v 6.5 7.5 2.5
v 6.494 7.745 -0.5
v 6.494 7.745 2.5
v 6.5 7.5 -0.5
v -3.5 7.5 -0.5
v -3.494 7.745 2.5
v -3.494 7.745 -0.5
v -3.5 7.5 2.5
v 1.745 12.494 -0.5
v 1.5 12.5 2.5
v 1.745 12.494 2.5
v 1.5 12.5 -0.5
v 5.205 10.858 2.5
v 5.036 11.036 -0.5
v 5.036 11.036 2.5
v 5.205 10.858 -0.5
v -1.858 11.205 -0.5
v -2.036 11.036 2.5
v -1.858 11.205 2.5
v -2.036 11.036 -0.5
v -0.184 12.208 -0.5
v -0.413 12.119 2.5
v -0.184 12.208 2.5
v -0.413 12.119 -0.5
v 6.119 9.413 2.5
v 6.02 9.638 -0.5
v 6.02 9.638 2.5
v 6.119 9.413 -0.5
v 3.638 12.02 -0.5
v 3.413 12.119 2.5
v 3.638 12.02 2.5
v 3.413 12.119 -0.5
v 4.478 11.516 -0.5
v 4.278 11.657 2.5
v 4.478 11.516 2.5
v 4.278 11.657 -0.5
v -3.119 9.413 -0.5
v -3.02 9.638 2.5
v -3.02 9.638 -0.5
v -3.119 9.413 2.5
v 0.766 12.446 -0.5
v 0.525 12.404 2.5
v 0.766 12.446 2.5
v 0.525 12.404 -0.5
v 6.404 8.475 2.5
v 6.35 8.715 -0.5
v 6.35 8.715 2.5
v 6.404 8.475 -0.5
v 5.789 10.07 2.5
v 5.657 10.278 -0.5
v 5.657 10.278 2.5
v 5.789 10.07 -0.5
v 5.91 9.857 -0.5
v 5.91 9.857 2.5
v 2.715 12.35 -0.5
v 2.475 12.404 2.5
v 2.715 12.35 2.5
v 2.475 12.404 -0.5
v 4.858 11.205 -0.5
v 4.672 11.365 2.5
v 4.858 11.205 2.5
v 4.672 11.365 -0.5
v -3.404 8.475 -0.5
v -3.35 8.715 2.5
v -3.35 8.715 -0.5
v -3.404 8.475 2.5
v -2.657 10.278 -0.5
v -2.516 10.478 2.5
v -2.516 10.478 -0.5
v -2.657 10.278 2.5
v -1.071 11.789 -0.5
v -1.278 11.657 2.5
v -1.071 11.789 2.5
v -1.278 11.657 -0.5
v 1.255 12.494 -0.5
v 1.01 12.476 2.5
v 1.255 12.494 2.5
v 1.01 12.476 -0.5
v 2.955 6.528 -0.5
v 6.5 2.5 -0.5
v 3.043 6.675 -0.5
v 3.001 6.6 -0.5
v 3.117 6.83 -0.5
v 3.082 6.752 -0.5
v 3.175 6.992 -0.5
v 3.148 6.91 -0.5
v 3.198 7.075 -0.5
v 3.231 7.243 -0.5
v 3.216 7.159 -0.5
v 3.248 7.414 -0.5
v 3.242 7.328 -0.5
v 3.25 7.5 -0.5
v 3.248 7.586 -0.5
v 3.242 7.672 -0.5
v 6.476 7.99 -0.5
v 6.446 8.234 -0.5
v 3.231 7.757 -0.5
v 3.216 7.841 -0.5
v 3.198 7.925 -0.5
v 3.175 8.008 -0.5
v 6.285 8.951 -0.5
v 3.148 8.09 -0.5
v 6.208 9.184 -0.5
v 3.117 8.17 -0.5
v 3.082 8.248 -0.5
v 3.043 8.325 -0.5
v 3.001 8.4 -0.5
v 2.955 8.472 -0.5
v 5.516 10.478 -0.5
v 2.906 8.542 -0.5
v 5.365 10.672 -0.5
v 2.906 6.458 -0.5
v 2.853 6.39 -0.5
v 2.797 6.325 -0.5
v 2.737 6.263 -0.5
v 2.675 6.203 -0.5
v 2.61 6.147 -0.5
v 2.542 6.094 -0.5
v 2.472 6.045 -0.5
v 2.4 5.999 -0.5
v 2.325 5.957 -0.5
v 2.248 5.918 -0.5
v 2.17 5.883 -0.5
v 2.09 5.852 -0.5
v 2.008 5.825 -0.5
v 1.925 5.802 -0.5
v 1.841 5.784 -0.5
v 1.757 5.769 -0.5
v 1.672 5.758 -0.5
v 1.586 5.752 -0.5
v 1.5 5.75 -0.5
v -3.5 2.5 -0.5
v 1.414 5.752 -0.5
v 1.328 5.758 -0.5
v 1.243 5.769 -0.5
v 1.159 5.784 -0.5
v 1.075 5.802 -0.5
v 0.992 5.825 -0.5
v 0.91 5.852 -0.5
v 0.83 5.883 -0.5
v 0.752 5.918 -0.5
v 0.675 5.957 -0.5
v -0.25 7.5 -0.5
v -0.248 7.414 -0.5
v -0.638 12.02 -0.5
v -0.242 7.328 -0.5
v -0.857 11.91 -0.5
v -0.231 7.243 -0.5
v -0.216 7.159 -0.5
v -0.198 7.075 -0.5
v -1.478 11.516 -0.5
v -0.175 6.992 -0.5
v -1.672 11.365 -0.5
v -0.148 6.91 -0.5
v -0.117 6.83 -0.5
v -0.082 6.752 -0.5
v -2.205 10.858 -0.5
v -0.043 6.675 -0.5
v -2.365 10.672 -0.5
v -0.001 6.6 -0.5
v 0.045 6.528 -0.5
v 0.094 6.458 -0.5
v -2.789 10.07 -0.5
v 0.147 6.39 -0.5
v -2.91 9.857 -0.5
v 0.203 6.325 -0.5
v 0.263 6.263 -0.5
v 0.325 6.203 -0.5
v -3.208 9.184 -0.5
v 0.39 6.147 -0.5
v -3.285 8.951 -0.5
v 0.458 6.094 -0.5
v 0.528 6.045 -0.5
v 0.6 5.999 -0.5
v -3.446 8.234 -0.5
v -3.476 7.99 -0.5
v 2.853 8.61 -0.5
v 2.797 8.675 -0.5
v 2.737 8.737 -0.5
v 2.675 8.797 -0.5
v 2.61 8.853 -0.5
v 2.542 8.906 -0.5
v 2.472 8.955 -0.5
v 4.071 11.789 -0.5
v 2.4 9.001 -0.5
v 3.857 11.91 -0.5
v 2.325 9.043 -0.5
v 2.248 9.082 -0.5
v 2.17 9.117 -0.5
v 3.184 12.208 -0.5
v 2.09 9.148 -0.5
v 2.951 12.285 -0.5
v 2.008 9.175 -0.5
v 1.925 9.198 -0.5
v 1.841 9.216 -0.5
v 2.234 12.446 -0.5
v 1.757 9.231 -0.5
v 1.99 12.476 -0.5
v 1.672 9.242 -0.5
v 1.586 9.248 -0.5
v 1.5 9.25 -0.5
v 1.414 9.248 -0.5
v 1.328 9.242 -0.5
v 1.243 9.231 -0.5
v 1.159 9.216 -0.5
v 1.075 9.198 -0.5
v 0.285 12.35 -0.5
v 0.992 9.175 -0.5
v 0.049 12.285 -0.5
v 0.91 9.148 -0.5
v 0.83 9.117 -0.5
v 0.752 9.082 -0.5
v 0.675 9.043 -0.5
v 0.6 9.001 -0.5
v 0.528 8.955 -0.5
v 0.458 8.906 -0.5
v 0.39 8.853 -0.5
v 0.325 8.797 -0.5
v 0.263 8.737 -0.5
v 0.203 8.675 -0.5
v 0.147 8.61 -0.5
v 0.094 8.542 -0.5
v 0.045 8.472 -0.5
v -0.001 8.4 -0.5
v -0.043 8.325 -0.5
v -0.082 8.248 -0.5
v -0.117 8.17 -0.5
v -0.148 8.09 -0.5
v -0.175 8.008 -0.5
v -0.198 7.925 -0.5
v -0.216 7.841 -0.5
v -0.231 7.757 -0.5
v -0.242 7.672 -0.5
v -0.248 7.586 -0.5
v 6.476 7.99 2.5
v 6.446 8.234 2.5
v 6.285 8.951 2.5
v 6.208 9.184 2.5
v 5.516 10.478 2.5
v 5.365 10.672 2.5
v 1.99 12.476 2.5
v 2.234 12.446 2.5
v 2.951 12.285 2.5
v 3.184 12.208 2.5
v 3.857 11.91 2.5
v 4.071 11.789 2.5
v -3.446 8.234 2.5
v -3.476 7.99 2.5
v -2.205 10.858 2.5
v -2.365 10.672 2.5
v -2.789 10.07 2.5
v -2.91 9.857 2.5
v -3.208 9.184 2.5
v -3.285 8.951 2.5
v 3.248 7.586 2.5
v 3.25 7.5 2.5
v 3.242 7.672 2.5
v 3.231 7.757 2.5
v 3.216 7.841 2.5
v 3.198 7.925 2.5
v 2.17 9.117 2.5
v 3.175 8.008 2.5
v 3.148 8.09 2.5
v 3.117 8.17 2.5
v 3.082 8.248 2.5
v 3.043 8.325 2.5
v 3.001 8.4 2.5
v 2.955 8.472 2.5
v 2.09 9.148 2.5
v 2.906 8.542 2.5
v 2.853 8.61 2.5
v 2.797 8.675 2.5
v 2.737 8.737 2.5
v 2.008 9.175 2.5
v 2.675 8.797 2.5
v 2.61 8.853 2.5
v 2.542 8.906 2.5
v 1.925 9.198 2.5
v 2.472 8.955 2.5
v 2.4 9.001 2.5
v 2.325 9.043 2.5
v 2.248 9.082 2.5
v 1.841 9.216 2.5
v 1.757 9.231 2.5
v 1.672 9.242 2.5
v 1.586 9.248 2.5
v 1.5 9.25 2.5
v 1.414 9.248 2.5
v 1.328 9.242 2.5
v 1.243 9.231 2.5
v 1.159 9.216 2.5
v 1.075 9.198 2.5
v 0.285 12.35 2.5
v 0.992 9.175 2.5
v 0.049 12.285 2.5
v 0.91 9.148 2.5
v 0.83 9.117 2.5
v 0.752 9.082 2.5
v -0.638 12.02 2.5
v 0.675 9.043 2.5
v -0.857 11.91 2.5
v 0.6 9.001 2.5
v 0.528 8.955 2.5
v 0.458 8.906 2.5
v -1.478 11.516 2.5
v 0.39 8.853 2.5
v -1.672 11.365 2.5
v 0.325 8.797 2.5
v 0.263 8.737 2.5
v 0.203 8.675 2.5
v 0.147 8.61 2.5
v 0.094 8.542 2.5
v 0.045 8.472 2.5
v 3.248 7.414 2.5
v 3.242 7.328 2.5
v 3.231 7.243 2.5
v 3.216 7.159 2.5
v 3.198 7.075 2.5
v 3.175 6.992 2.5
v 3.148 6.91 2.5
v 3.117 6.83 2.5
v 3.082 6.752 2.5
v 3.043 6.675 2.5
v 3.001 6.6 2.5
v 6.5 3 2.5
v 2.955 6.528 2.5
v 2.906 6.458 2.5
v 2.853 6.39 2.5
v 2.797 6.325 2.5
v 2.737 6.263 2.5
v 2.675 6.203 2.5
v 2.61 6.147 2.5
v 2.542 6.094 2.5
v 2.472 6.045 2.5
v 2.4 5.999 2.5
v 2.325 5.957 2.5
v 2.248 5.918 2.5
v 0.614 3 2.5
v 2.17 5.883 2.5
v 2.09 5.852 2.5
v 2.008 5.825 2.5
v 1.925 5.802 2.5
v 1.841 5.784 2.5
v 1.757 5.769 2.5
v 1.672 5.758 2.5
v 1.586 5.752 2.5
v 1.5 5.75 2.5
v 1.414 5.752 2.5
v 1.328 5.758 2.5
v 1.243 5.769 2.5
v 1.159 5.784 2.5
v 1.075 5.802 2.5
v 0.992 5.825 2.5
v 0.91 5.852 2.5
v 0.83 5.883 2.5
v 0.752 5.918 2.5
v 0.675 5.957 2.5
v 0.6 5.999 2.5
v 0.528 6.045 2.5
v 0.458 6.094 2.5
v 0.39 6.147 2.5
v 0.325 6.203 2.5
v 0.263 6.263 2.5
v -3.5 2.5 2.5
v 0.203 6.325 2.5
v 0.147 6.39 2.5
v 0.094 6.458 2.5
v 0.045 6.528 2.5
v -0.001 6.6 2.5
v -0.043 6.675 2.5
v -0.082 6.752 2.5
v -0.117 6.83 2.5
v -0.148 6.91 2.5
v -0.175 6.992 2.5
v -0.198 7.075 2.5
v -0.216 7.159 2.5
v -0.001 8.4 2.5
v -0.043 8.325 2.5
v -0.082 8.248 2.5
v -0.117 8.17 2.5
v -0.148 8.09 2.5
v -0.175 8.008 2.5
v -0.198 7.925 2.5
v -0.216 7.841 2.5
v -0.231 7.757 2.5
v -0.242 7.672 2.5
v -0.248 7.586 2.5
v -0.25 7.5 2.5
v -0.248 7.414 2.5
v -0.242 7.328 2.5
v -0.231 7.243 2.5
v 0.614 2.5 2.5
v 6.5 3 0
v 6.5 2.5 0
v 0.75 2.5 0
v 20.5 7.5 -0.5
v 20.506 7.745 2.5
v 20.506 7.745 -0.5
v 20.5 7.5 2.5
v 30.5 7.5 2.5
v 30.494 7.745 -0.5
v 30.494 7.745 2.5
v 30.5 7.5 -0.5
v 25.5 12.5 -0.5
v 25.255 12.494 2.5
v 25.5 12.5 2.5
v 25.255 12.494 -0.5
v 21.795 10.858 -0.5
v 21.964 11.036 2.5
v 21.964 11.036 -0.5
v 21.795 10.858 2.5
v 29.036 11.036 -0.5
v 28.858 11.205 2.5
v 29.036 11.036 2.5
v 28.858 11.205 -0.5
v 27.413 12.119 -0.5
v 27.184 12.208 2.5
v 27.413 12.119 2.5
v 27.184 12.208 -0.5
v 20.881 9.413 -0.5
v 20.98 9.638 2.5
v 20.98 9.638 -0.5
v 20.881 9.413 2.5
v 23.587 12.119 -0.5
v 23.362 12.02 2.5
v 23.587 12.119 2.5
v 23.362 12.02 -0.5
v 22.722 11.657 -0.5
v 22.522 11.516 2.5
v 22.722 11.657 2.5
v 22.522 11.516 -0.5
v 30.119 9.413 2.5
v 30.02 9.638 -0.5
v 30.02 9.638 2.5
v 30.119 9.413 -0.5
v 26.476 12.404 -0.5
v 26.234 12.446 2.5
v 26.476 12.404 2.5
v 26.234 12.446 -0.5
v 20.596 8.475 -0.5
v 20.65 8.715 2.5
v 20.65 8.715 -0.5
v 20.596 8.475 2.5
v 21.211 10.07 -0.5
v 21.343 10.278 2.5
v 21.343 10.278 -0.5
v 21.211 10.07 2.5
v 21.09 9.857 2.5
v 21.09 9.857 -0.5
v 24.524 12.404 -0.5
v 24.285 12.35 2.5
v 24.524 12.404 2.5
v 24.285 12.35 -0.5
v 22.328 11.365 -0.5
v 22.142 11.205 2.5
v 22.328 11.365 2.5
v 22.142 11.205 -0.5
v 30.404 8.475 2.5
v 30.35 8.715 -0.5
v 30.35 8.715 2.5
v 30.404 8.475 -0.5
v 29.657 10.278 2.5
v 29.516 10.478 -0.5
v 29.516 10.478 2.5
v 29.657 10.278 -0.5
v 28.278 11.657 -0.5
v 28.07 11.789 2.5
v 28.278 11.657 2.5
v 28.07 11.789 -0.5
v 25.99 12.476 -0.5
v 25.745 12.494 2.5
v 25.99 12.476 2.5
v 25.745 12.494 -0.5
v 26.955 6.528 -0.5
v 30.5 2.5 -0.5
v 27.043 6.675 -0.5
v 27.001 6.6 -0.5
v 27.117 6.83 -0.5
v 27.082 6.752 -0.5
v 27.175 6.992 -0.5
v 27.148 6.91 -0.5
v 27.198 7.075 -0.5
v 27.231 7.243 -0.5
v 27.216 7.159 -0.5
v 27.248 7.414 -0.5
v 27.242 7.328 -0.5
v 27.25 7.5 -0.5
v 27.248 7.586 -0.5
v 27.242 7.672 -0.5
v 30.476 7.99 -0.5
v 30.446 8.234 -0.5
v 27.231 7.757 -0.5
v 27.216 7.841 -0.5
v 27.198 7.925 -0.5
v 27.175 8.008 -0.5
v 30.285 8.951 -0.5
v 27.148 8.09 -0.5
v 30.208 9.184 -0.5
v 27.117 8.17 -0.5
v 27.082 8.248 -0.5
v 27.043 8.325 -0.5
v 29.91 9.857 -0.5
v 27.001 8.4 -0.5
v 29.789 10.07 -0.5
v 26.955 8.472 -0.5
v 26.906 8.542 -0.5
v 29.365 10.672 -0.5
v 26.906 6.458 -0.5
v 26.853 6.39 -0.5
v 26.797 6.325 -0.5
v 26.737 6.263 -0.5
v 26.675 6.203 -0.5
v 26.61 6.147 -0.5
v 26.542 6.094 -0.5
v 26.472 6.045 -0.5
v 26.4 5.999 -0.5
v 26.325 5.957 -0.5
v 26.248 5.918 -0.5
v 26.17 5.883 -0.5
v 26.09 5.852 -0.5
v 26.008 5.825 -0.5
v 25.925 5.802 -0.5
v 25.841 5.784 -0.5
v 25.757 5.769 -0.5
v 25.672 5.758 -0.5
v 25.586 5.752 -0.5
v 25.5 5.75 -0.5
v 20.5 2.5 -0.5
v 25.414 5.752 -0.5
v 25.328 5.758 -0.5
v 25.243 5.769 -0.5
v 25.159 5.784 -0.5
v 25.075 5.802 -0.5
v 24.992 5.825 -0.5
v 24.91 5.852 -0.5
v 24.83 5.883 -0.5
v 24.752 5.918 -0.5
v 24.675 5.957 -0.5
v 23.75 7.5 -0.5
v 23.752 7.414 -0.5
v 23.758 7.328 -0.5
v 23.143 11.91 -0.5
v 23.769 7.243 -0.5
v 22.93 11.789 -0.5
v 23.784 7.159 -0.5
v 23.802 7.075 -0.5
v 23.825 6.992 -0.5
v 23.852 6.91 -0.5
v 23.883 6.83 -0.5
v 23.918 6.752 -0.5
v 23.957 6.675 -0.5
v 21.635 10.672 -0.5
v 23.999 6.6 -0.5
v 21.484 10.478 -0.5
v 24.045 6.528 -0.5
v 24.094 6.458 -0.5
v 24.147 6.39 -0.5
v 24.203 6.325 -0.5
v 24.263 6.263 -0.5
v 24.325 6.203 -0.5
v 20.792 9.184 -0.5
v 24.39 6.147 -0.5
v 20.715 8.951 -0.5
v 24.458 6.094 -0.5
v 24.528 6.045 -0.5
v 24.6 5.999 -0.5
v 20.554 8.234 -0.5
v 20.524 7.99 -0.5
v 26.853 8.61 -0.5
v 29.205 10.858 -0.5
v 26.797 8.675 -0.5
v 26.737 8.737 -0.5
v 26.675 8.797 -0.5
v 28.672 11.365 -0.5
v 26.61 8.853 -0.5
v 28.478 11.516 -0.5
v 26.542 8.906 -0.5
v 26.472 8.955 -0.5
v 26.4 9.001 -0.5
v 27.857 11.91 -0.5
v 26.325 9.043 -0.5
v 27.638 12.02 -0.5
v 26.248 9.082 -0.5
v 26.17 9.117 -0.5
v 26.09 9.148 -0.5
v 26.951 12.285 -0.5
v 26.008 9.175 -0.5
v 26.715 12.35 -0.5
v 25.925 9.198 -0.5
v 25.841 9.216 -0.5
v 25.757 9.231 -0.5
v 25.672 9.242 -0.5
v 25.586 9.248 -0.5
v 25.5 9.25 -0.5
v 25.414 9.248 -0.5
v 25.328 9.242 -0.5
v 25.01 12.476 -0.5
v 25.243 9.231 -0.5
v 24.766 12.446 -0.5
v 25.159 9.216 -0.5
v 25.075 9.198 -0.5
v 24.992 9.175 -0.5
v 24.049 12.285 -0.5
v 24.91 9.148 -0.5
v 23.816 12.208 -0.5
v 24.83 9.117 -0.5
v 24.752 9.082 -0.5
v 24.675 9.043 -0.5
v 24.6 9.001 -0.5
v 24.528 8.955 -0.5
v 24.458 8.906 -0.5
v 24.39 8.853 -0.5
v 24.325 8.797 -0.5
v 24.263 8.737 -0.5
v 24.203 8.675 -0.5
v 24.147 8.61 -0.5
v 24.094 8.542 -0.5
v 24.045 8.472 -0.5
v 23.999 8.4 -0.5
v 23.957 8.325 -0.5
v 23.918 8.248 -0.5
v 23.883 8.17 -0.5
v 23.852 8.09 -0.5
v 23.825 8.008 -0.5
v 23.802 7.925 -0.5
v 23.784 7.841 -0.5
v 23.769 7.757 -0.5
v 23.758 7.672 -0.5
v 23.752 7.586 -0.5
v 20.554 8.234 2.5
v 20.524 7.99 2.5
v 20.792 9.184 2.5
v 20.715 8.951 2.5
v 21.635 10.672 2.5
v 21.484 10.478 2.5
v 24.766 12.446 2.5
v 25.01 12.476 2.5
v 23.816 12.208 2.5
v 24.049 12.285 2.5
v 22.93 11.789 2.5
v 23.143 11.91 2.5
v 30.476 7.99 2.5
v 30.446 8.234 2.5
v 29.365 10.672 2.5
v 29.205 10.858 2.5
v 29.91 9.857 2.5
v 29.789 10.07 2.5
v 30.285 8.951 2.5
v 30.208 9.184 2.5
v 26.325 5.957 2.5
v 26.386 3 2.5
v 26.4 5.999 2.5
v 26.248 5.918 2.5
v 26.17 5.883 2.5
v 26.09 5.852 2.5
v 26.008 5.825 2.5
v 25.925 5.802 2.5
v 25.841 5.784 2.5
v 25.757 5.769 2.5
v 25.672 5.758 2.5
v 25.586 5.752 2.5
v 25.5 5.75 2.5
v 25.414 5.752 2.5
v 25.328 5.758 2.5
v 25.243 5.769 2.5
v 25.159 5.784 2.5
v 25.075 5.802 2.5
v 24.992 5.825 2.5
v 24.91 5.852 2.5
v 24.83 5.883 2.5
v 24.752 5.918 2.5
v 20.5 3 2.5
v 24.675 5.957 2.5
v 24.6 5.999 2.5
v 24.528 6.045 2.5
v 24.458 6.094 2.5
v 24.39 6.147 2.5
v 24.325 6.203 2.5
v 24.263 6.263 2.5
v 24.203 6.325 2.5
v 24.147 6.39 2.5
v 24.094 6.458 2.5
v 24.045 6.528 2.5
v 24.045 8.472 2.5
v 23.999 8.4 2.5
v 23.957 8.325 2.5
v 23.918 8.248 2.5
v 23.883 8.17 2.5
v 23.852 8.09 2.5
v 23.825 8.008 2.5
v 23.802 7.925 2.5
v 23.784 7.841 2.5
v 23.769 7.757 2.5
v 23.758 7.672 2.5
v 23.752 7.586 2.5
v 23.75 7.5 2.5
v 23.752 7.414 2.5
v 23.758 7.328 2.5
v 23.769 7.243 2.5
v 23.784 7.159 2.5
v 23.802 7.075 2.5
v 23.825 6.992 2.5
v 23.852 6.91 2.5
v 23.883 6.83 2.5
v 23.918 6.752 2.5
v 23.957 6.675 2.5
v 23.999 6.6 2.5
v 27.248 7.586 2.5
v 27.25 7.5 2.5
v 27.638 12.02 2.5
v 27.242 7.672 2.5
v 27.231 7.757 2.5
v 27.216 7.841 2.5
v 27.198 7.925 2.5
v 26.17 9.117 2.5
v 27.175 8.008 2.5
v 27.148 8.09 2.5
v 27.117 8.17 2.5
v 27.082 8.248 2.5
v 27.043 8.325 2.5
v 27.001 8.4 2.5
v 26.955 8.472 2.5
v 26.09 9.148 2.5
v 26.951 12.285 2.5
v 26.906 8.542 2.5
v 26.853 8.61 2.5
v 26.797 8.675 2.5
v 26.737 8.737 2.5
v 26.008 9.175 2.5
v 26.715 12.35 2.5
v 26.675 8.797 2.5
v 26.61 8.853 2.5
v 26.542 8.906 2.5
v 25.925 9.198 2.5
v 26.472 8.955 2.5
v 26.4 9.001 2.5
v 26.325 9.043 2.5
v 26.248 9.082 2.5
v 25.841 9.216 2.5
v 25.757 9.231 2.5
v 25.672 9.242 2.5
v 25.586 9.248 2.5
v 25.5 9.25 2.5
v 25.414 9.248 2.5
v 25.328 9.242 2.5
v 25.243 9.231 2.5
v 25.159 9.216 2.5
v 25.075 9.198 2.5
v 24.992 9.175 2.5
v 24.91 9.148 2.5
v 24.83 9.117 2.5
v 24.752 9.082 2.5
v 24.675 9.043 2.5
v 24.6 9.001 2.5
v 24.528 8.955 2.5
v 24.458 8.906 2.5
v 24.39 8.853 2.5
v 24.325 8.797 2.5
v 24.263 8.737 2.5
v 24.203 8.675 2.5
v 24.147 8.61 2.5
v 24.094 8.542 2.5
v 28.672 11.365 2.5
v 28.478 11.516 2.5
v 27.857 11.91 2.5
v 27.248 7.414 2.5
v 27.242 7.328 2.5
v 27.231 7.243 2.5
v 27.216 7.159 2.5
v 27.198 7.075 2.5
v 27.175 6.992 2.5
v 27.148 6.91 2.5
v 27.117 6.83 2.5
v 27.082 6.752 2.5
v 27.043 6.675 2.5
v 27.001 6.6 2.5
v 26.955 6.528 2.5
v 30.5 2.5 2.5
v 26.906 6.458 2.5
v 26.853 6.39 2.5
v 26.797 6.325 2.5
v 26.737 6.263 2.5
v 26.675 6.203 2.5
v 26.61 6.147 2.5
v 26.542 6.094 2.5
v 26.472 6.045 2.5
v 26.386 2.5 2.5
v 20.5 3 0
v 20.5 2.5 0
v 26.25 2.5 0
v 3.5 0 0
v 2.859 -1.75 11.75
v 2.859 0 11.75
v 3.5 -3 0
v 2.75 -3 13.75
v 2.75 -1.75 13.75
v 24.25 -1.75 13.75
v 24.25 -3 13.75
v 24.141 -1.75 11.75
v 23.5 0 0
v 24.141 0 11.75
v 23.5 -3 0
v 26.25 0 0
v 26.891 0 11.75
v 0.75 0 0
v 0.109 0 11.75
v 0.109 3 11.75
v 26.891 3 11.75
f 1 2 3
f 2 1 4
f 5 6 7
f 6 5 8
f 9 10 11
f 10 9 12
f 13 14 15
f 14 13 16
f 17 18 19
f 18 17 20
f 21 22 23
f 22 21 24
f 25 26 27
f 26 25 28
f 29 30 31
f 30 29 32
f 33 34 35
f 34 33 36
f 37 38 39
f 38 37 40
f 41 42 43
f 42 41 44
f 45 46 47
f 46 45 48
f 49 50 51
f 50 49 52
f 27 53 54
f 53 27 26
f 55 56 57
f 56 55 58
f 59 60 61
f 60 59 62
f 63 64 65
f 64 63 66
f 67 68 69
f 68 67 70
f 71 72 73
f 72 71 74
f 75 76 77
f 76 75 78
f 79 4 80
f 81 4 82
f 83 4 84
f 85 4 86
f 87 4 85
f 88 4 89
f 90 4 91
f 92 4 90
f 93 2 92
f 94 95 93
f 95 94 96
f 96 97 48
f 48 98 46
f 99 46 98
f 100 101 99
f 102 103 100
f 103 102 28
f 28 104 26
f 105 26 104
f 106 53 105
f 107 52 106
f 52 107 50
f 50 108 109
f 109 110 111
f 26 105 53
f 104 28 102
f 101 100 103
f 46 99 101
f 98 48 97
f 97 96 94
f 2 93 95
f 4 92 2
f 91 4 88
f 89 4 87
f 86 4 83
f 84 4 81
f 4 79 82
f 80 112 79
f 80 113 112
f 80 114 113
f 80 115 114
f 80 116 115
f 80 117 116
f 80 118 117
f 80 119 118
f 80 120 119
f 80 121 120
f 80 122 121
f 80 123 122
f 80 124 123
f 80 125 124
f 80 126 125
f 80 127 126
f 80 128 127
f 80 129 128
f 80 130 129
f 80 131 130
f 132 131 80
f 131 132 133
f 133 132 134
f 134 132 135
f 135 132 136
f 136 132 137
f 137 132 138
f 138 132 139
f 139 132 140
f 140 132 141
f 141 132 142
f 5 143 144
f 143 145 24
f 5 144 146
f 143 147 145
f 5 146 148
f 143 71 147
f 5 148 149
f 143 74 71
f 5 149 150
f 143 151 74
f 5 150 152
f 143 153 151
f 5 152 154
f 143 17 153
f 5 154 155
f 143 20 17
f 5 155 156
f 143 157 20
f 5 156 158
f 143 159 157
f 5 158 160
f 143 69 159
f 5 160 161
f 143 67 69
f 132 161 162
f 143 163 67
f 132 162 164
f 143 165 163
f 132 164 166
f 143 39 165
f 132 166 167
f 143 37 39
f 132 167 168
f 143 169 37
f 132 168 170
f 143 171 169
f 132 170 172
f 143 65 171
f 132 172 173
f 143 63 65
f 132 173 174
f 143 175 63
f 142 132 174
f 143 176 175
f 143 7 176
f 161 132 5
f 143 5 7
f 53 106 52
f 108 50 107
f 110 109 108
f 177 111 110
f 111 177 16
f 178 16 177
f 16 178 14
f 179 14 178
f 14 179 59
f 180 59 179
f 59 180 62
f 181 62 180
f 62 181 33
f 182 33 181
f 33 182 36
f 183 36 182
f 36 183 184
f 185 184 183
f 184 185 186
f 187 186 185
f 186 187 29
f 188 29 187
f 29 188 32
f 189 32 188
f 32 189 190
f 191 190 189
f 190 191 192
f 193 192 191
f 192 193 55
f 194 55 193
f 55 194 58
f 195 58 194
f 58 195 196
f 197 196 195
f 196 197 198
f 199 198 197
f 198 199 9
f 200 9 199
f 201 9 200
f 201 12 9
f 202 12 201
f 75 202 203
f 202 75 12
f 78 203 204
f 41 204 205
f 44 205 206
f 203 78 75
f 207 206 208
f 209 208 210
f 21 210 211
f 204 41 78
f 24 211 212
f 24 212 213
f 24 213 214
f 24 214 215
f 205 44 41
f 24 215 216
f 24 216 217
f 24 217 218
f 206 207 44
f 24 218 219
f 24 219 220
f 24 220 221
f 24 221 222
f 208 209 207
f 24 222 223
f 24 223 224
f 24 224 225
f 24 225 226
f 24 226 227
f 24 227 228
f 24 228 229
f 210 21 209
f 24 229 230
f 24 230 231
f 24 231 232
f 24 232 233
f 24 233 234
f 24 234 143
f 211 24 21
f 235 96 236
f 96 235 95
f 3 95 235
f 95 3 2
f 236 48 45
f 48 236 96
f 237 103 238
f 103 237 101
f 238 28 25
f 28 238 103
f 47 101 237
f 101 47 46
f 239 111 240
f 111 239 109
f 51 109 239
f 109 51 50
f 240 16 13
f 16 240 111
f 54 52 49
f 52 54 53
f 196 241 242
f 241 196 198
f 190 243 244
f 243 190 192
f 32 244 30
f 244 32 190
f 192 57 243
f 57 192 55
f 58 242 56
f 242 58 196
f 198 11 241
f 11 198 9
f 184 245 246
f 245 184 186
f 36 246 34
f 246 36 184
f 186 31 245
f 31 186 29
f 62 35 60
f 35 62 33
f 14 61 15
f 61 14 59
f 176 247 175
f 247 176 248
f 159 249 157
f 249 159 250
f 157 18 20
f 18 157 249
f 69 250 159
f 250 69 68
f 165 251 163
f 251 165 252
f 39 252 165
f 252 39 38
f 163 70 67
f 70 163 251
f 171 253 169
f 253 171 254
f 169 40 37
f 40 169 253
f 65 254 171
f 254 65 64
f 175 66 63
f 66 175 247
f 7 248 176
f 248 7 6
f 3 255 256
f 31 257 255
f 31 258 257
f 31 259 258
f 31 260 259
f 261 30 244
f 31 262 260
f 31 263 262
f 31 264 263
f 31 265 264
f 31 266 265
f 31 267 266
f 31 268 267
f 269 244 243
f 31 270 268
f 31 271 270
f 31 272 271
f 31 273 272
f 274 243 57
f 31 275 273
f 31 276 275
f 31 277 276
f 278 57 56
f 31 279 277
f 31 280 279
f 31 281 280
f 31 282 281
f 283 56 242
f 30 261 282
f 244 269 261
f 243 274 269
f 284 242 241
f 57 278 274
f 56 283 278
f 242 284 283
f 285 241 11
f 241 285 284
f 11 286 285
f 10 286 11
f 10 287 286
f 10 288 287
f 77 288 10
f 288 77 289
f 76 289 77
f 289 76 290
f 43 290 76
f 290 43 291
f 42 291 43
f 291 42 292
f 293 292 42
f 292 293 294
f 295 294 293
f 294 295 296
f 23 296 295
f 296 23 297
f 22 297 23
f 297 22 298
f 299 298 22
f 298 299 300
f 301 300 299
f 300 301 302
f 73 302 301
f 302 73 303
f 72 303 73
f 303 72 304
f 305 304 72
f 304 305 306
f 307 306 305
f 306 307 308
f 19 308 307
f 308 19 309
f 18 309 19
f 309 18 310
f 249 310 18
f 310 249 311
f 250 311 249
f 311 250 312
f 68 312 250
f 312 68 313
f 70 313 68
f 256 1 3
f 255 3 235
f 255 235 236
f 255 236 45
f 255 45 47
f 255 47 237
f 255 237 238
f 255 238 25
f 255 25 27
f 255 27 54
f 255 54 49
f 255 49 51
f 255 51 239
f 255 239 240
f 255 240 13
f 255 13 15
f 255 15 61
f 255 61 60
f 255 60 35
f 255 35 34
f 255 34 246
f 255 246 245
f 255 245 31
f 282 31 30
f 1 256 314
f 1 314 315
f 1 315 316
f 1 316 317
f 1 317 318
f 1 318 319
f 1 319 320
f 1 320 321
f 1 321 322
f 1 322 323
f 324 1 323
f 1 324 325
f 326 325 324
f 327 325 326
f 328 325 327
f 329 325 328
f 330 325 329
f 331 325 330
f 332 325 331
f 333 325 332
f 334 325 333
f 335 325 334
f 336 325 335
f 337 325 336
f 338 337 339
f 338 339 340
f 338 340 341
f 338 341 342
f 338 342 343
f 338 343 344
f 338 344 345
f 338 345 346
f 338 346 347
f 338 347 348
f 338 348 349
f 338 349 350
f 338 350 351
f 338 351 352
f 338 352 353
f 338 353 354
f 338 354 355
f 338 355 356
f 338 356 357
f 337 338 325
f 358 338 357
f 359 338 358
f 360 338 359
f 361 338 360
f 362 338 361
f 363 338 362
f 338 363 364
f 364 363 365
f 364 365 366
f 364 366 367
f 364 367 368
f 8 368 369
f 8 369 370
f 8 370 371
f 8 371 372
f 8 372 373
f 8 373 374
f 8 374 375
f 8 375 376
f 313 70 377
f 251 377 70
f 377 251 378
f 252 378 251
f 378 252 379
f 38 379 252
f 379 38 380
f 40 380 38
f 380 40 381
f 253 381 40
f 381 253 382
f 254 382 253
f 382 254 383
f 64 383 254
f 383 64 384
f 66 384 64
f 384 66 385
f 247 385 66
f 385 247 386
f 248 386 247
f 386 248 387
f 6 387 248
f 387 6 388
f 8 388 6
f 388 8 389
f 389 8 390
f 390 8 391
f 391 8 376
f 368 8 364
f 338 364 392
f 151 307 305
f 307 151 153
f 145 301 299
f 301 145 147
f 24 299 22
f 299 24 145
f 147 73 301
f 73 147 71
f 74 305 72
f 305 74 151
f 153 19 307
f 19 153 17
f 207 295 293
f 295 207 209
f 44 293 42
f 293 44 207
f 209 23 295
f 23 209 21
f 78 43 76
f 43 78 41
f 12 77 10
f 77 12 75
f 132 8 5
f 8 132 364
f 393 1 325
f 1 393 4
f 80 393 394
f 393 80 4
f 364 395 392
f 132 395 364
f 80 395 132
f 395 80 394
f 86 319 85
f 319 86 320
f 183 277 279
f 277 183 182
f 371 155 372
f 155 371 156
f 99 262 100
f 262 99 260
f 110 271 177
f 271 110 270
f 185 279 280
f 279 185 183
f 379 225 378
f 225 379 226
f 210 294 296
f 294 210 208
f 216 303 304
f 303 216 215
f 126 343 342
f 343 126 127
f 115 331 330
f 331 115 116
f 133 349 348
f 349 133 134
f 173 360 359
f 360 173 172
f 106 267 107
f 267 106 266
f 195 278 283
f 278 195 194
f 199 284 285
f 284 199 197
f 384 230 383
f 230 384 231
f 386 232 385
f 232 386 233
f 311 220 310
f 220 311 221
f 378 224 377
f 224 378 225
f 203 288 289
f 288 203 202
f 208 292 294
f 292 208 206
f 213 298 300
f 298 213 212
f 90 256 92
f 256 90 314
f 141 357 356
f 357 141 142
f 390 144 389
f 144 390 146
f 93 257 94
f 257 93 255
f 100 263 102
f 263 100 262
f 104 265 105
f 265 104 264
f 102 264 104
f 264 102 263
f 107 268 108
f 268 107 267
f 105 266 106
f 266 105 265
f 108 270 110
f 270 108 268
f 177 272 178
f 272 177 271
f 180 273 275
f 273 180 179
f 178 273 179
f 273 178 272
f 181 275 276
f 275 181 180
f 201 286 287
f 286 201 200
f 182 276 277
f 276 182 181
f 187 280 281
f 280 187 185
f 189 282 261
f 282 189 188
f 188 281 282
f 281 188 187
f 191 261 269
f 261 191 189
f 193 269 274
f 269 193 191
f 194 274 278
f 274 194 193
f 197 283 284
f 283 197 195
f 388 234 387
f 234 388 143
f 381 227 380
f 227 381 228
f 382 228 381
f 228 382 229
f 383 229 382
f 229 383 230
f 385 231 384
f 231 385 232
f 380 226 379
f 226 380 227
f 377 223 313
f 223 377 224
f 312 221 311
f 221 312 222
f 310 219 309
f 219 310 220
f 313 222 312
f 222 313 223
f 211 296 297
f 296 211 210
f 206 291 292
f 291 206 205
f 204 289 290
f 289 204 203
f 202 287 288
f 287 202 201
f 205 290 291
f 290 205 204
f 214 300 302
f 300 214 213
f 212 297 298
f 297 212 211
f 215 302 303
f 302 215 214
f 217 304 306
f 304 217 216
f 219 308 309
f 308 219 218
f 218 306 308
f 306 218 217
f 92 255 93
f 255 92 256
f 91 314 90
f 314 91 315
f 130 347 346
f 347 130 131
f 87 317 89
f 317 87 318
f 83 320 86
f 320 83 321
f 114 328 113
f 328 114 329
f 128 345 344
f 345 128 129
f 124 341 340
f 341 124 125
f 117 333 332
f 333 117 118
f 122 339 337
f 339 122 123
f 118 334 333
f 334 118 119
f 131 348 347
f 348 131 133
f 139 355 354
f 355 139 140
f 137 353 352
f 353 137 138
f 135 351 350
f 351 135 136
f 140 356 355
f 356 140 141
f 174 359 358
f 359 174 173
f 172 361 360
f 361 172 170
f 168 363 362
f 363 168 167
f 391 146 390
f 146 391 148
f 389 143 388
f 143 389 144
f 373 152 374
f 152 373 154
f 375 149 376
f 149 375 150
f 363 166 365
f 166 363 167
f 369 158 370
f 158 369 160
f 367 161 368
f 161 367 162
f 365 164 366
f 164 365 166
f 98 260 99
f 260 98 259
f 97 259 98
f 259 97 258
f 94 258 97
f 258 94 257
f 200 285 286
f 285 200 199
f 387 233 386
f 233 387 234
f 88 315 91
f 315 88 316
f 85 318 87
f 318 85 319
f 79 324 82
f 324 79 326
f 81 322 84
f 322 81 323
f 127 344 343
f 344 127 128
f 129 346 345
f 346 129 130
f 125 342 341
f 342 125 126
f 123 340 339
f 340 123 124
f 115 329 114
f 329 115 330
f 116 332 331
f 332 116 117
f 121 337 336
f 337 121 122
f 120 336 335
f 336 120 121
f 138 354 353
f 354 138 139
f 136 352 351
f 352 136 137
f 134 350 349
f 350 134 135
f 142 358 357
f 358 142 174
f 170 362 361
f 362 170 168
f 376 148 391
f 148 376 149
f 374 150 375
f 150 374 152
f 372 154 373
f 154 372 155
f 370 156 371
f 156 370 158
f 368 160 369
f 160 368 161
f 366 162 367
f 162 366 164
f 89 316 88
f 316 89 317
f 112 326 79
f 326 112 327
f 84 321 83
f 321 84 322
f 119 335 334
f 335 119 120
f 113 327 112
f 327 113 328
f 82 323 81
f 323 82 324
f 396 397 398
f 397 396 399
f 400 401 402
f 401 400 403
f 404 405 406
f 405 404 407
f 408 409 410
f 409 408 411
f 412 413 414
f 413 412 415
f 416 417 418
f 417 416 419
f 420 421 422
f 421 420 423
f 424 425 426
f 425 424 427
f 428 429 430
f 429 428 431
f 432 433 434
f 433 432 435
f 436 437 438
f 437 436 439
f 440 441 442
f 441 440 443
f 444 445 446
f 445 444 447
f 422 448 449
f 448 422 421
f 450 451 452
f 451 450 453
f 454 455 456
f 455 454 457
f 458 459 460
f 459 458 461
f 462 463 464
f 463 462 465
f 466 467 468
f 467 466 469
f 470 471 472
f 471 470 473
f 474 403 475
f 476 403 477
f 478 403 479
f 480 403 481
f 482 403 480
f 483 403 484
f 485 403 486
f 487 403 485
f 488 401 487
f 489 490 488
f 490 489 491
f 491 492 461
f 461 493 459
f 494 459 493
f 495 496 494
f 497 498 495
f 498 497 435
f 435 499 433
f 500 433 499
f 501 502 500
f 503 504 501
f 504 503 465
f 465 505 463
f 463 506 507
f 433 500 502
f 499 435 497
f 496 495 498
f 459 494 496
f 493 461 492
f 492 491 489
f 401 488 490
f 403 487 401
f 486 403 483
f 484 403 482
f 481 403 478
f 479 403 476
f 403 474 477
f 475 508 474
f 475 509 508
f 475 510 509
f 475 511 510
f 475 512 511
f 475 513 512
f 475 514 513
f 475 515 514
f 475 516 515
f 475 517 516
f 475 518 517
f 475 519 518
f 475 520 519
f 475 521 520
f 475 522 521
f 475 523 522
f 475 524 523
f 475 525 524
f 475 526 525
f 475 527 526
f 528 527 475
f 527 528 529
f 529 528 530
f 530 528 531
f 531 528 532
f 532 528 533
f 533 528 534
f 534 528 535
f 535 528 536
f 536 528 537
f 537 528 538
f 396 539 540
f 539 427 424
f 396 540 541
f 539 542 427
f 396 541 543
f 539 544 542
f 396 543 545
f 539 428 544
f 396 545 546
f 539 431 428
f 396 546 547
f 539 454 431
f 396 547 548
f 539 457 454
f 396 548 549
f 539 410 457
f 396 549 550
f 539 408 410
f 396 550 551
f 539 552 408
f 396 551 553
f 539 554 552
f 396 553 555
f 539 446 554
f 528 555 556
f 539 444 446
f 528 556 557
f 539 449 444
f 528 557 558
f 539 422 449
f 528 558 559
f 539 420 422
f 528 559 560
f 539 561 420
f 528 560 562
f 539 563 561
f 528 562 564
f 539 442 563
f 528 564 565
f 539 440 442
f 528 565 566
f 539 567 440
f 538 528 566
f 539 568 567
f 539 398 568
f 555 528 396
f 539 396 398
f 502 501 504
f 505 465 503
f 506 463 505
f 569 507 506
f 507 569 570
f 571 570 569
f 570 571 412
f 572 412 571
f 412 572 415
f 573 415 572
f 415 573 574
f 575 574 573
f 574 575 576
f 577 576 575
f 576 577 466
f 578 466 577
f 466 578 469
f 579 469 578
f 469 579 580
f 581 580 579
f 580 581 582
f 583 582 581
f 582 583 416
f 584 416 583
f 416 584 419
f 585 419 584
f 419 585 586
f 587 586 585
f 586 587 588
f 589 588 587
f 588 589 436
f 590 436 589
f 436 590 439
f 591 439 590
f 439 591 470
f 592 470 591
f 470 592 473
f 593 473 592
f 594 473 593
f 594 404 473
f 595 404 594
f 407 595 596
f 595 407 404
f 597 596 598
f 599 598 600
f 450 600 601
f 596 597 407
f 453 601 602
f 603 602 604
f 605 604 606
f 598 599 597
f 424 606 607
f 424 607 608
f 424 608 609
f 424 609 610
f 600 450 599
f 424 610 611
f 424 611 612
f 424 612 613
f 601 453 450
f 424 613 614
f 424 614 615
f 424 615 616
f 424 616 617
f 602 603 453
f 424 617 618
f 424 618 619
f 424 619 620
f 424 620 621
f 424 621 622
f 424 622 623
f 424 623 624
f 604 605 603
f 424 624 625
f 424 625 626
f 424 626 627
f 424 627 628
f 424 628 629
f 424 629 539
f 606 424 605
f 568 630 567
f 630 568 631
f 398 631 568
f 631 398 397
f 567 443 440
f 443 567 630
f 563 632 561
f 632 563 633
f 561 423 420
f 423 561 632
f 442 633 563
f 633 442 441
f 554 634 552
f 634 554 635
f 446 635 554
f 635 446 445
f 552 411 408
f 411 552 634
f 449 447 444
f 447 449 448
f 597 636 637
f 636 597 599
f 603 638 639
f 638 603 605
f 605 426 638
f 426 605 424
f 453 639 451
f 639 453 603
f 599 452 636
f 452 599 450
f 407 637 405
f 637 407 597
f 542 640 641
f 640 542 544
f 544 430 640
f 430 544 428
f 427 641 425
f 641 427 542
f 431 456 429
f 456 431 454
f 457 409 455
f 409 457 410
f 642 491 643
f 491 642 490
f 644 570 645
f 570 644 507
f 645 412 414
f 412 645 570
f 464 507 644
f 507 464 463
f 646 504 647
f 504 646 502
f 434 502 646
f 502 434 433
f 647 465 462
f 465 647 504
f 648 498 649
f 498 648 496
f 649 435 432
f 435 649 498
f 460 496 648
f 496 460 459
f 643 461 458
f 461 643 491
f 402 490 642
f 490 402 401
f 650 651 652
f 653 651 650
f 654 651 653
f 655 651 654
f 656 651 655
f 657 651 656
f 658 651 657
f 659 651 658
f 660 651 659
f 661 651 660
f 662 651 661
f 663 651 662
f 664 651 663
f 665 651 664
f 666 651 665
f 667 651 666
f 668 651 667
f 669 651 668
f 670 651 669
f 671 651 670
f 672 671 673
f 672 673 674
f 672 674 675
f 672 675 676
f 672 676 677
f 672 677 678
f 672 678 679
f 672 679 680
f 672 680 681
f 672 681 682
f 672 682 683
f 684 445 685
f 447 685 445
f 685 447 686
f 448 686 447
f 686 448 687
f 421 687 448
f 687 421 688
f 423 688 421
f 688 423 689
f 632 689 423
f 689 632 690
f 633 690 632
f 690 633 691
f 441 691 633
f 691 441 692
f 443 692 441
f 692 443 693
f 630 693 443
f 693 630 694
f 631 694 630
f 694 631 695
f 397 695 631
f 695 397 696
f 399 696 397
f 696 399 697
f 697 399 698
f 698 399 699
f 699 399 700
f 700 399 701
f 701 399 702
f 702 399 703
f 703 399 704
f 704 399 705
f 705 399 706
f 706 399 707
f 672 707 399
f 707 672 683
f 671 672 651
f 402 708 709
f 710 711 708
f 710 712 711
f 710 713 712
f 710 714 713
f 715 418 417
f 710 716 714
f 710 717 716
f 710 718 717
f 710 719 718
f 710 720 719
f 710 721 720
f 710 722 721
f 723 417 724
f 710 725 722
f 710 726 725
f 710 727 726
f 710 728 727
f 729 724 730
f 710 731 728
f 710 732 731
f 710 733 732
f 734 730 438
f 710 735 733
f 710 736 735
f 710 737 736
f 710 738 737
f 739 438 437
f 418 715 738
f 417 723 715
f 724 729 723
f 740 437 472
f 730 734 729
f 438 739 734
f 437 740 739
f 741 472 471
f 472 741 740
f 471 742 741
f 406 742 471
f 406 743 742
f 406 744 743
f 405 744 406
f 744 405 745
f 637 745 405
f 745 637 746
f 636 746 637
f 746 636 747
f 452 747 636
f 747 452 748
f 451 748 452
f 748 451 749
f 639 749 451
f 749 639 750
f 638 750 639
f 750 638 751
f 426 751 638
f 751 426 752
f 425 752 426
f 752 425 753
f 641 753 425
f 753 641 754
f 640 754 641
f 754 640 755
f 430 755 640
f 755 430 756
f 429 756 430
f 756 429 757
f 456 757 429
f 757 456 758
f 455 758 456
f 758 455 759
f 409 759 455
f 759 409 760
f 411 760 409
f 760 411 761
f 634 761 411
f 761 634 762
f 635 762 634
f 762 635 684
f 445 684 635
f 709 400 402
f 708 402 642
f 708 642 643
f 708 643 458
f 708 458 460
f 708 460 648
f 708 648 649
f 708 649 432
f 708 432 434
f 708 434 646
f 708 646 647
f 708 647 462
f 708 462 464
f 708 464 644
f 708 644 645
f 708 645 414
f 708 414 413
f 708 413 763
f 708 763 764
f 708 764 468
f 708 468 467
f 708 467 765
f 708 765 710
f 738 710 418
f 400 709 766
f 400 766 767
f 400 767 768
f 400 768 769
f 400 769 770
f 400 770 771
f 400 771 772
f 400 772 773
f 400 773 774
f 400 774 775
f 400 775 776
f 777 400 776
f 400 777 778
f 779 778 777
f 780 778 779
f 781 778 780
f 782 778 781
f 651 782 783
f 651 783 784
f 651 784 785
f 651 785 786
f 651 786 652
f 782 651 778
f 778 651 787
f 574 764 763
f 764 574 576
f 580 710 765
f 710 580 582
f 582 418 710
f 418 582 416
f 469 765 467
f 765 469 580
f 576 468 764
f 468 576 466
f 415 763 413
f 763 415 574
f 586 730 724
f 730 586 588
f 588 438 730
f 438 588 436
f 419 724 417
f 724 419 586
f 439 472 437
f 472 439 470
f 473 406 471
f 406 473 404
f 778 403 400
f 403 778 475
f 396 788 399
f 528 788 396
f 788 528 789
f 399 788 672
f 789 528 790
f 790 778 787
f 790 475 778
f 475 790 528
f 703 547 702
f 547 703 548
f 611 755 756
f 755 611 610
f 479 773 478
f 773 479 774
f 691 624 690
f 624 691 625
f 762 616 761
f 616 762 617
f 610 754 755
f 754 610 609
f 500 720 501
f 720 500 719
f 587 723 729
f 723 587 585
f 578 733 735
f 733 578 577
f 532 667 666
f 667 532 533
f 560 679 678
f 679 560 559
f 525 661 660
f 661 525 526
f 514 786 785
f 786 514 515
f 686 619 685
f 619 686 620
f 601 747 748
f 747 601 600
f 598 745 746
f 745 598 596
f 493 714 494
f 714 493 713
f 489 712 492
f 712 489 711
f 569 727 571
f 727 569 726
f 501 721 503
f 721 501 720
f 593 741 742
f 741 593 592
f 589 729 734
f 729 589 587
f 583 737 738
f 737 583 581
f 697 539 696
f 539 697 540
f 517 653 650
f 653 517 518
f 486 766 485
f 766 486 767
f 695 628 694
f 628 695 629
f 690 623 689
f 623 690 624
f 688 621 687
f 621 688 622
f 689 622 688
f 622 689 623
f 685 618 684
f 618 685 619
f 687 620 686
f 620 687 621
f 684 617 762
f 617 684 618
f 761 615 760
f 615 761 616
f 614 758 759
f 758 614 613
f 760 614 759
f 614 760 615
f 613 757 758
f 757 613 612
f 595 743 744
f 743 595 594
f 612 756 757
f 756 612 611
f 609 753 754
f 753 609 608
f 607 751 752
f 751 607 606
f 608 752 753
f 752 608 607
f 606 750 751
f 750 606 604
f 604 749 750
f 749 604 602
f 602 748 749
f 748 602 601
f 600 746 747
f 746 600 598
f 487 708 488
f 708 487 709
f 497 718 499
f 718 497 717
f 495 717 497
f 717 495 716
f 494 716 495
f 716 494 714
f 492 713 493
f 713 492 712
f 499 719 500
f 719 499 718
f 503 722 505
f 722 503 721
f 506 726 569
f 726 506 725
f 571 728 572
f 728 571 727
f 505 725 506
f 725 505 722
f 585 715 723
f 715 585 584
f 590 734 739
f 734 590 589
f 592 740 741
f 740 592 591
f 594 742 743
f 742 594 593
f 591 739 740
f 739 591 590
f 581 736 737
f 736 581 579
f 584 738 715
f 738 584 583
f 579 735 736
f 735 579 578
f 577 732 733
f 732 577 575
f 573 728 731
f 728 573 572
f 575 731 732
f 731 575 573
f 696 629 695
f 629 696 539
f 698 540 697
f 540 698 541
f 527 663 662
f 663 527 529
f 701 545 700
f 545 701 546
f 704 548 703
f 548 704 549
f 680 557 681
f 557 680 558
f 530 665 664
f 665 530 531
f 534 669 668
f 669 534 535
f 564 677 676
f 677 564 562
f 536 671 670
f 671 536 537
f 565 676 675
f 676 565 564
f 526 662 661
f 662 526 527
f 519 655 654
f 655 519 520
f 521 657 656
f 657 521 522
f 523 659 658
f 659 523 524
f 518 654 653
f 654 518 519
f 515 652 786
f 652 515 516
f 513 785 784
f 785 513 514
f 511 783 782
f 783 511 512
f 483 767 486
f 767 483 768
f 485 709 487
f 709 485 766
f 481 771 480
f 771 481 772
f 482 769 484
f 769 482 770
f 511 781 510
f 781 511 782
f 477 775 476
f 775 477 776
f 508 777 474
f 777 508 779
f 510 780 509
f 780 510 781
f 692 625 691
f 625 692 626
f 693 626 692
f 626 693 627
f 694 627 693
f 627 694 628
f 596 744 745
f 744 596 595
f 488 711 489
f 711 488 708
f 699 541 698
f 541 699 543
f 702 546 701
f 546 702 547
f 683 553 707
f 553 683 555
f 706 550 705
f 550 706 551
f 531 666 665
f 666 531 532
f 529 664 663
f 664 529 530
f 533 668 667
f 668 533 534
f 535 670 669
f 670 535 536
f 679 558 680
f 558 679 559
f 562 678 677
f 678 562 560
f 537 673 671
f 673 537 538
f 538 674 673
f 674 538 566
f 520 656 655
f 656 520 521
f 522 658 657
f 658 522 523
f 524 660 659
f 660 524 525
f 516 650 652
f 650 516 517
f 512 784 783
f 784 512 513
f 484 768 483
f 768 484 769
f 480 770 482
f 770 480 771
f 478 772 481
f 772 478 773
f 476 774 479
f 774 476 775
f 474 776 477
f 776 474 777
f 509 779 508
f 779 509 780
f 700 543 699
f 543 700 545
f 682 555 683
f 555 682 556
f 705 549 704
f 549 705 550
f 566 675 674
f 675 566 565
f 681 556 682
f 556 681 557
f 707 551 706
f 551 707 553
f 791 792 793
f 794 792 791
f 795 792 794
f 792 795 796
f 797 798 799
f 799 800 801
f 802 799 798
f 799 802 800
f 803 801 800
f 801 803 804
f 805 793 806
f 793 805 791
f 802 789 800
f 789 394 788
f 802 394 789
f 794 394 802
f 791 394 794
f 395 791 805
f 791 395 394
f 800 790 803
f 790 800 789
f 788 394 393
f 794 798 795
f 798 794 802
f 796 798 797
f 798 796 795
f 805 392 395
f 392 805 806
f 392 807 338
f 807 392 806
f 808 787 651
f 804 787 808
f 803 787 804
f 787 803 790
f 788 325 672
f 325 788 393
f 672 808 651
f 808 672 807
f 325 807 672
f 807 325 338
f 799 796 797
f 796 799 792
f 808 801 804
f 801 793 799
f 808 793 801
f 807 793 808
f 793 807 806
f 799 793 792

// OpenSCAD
COVER_X = 27;
COVER_X_VARIANCE = 1.5;
COVER_X_OFFSET = 2.75;
COVER_Y = 6;
COVER_Y_OFFSET = 1.25;
COVER_Z = 13.75;
COVER_Z_OFFSET = 2;

CLIP_R_OUTER = 5;
CLIP_R_INNER = 1.75;
CLIP_X_SEPARATION = 24;
CLIP_Y_OFFSET = 7.5;
CLIP_Z = 3;
CLIP_Z_OFFSET = .5;

CYLINDER_FACETS = 128;

module copy_mirror(v) { 
    children(); 
    mirror(v) children(); 
} 

rotate([90, 0, 0]) {
    difference() {
        union() {
            translate([COVER_X_OFFSET, 0, 0])
                linear_extrude(height = COVER_Y / 2) 
                    polygon(points=[[COVER_X_VARIANCE / 2, 0], [COVER_X - (COVER_X_OFFSET * 2) - (COVER_X_VARIANCE / 2), 0], [COVER_X - (COVER_X_OFFSET * 2), COVER_Z], [0, COVER_Z]]);
            translate([0, 0, -COVER_Y / 2])
                linear_extrude(height = COVER_Y / 2) 
                    polygon(points=[[COVER_X_VARIANCE / 2, 0], [COVER_X - (COVER_X_VARIANCE / 2), 0], [COVER_X, COVER_Z], [0, COVER_Z]]);
        }
        translate([0, COVER_Z - COVER_Z_OFFSET, -COVER_Y / 2])
            cube([COVER_X, COVER_Z_OFFSET, COVER_Y - COVER_Y_OFFSET]);
    }
}

translate([COVER_X / 2, 0, 0])
    copy_mirror(vec=[0,1,0])
        translate([-CLIP_X_SEPARATION / 2, CLIP_Y_OFFSET, -CLIP_Z_OFFSET])
            difference() {
                union() {
                    cylinder(r=CLIP_R_OUTER, h=CLIP_Z, $fn=CYLINDER_FACETS);
                    translate([-CLIP_R_OUTER, -CLIP_R_OUTER, 0])
                        cube([CLIP_R_OUTER * 2, CLIP_R_OUTER, CLIP_Z]);
                }
                cylinder(r=CLIP_R_INNER, h=CLIP_Z, $fn=CYLINDER_FACETS);
            }
